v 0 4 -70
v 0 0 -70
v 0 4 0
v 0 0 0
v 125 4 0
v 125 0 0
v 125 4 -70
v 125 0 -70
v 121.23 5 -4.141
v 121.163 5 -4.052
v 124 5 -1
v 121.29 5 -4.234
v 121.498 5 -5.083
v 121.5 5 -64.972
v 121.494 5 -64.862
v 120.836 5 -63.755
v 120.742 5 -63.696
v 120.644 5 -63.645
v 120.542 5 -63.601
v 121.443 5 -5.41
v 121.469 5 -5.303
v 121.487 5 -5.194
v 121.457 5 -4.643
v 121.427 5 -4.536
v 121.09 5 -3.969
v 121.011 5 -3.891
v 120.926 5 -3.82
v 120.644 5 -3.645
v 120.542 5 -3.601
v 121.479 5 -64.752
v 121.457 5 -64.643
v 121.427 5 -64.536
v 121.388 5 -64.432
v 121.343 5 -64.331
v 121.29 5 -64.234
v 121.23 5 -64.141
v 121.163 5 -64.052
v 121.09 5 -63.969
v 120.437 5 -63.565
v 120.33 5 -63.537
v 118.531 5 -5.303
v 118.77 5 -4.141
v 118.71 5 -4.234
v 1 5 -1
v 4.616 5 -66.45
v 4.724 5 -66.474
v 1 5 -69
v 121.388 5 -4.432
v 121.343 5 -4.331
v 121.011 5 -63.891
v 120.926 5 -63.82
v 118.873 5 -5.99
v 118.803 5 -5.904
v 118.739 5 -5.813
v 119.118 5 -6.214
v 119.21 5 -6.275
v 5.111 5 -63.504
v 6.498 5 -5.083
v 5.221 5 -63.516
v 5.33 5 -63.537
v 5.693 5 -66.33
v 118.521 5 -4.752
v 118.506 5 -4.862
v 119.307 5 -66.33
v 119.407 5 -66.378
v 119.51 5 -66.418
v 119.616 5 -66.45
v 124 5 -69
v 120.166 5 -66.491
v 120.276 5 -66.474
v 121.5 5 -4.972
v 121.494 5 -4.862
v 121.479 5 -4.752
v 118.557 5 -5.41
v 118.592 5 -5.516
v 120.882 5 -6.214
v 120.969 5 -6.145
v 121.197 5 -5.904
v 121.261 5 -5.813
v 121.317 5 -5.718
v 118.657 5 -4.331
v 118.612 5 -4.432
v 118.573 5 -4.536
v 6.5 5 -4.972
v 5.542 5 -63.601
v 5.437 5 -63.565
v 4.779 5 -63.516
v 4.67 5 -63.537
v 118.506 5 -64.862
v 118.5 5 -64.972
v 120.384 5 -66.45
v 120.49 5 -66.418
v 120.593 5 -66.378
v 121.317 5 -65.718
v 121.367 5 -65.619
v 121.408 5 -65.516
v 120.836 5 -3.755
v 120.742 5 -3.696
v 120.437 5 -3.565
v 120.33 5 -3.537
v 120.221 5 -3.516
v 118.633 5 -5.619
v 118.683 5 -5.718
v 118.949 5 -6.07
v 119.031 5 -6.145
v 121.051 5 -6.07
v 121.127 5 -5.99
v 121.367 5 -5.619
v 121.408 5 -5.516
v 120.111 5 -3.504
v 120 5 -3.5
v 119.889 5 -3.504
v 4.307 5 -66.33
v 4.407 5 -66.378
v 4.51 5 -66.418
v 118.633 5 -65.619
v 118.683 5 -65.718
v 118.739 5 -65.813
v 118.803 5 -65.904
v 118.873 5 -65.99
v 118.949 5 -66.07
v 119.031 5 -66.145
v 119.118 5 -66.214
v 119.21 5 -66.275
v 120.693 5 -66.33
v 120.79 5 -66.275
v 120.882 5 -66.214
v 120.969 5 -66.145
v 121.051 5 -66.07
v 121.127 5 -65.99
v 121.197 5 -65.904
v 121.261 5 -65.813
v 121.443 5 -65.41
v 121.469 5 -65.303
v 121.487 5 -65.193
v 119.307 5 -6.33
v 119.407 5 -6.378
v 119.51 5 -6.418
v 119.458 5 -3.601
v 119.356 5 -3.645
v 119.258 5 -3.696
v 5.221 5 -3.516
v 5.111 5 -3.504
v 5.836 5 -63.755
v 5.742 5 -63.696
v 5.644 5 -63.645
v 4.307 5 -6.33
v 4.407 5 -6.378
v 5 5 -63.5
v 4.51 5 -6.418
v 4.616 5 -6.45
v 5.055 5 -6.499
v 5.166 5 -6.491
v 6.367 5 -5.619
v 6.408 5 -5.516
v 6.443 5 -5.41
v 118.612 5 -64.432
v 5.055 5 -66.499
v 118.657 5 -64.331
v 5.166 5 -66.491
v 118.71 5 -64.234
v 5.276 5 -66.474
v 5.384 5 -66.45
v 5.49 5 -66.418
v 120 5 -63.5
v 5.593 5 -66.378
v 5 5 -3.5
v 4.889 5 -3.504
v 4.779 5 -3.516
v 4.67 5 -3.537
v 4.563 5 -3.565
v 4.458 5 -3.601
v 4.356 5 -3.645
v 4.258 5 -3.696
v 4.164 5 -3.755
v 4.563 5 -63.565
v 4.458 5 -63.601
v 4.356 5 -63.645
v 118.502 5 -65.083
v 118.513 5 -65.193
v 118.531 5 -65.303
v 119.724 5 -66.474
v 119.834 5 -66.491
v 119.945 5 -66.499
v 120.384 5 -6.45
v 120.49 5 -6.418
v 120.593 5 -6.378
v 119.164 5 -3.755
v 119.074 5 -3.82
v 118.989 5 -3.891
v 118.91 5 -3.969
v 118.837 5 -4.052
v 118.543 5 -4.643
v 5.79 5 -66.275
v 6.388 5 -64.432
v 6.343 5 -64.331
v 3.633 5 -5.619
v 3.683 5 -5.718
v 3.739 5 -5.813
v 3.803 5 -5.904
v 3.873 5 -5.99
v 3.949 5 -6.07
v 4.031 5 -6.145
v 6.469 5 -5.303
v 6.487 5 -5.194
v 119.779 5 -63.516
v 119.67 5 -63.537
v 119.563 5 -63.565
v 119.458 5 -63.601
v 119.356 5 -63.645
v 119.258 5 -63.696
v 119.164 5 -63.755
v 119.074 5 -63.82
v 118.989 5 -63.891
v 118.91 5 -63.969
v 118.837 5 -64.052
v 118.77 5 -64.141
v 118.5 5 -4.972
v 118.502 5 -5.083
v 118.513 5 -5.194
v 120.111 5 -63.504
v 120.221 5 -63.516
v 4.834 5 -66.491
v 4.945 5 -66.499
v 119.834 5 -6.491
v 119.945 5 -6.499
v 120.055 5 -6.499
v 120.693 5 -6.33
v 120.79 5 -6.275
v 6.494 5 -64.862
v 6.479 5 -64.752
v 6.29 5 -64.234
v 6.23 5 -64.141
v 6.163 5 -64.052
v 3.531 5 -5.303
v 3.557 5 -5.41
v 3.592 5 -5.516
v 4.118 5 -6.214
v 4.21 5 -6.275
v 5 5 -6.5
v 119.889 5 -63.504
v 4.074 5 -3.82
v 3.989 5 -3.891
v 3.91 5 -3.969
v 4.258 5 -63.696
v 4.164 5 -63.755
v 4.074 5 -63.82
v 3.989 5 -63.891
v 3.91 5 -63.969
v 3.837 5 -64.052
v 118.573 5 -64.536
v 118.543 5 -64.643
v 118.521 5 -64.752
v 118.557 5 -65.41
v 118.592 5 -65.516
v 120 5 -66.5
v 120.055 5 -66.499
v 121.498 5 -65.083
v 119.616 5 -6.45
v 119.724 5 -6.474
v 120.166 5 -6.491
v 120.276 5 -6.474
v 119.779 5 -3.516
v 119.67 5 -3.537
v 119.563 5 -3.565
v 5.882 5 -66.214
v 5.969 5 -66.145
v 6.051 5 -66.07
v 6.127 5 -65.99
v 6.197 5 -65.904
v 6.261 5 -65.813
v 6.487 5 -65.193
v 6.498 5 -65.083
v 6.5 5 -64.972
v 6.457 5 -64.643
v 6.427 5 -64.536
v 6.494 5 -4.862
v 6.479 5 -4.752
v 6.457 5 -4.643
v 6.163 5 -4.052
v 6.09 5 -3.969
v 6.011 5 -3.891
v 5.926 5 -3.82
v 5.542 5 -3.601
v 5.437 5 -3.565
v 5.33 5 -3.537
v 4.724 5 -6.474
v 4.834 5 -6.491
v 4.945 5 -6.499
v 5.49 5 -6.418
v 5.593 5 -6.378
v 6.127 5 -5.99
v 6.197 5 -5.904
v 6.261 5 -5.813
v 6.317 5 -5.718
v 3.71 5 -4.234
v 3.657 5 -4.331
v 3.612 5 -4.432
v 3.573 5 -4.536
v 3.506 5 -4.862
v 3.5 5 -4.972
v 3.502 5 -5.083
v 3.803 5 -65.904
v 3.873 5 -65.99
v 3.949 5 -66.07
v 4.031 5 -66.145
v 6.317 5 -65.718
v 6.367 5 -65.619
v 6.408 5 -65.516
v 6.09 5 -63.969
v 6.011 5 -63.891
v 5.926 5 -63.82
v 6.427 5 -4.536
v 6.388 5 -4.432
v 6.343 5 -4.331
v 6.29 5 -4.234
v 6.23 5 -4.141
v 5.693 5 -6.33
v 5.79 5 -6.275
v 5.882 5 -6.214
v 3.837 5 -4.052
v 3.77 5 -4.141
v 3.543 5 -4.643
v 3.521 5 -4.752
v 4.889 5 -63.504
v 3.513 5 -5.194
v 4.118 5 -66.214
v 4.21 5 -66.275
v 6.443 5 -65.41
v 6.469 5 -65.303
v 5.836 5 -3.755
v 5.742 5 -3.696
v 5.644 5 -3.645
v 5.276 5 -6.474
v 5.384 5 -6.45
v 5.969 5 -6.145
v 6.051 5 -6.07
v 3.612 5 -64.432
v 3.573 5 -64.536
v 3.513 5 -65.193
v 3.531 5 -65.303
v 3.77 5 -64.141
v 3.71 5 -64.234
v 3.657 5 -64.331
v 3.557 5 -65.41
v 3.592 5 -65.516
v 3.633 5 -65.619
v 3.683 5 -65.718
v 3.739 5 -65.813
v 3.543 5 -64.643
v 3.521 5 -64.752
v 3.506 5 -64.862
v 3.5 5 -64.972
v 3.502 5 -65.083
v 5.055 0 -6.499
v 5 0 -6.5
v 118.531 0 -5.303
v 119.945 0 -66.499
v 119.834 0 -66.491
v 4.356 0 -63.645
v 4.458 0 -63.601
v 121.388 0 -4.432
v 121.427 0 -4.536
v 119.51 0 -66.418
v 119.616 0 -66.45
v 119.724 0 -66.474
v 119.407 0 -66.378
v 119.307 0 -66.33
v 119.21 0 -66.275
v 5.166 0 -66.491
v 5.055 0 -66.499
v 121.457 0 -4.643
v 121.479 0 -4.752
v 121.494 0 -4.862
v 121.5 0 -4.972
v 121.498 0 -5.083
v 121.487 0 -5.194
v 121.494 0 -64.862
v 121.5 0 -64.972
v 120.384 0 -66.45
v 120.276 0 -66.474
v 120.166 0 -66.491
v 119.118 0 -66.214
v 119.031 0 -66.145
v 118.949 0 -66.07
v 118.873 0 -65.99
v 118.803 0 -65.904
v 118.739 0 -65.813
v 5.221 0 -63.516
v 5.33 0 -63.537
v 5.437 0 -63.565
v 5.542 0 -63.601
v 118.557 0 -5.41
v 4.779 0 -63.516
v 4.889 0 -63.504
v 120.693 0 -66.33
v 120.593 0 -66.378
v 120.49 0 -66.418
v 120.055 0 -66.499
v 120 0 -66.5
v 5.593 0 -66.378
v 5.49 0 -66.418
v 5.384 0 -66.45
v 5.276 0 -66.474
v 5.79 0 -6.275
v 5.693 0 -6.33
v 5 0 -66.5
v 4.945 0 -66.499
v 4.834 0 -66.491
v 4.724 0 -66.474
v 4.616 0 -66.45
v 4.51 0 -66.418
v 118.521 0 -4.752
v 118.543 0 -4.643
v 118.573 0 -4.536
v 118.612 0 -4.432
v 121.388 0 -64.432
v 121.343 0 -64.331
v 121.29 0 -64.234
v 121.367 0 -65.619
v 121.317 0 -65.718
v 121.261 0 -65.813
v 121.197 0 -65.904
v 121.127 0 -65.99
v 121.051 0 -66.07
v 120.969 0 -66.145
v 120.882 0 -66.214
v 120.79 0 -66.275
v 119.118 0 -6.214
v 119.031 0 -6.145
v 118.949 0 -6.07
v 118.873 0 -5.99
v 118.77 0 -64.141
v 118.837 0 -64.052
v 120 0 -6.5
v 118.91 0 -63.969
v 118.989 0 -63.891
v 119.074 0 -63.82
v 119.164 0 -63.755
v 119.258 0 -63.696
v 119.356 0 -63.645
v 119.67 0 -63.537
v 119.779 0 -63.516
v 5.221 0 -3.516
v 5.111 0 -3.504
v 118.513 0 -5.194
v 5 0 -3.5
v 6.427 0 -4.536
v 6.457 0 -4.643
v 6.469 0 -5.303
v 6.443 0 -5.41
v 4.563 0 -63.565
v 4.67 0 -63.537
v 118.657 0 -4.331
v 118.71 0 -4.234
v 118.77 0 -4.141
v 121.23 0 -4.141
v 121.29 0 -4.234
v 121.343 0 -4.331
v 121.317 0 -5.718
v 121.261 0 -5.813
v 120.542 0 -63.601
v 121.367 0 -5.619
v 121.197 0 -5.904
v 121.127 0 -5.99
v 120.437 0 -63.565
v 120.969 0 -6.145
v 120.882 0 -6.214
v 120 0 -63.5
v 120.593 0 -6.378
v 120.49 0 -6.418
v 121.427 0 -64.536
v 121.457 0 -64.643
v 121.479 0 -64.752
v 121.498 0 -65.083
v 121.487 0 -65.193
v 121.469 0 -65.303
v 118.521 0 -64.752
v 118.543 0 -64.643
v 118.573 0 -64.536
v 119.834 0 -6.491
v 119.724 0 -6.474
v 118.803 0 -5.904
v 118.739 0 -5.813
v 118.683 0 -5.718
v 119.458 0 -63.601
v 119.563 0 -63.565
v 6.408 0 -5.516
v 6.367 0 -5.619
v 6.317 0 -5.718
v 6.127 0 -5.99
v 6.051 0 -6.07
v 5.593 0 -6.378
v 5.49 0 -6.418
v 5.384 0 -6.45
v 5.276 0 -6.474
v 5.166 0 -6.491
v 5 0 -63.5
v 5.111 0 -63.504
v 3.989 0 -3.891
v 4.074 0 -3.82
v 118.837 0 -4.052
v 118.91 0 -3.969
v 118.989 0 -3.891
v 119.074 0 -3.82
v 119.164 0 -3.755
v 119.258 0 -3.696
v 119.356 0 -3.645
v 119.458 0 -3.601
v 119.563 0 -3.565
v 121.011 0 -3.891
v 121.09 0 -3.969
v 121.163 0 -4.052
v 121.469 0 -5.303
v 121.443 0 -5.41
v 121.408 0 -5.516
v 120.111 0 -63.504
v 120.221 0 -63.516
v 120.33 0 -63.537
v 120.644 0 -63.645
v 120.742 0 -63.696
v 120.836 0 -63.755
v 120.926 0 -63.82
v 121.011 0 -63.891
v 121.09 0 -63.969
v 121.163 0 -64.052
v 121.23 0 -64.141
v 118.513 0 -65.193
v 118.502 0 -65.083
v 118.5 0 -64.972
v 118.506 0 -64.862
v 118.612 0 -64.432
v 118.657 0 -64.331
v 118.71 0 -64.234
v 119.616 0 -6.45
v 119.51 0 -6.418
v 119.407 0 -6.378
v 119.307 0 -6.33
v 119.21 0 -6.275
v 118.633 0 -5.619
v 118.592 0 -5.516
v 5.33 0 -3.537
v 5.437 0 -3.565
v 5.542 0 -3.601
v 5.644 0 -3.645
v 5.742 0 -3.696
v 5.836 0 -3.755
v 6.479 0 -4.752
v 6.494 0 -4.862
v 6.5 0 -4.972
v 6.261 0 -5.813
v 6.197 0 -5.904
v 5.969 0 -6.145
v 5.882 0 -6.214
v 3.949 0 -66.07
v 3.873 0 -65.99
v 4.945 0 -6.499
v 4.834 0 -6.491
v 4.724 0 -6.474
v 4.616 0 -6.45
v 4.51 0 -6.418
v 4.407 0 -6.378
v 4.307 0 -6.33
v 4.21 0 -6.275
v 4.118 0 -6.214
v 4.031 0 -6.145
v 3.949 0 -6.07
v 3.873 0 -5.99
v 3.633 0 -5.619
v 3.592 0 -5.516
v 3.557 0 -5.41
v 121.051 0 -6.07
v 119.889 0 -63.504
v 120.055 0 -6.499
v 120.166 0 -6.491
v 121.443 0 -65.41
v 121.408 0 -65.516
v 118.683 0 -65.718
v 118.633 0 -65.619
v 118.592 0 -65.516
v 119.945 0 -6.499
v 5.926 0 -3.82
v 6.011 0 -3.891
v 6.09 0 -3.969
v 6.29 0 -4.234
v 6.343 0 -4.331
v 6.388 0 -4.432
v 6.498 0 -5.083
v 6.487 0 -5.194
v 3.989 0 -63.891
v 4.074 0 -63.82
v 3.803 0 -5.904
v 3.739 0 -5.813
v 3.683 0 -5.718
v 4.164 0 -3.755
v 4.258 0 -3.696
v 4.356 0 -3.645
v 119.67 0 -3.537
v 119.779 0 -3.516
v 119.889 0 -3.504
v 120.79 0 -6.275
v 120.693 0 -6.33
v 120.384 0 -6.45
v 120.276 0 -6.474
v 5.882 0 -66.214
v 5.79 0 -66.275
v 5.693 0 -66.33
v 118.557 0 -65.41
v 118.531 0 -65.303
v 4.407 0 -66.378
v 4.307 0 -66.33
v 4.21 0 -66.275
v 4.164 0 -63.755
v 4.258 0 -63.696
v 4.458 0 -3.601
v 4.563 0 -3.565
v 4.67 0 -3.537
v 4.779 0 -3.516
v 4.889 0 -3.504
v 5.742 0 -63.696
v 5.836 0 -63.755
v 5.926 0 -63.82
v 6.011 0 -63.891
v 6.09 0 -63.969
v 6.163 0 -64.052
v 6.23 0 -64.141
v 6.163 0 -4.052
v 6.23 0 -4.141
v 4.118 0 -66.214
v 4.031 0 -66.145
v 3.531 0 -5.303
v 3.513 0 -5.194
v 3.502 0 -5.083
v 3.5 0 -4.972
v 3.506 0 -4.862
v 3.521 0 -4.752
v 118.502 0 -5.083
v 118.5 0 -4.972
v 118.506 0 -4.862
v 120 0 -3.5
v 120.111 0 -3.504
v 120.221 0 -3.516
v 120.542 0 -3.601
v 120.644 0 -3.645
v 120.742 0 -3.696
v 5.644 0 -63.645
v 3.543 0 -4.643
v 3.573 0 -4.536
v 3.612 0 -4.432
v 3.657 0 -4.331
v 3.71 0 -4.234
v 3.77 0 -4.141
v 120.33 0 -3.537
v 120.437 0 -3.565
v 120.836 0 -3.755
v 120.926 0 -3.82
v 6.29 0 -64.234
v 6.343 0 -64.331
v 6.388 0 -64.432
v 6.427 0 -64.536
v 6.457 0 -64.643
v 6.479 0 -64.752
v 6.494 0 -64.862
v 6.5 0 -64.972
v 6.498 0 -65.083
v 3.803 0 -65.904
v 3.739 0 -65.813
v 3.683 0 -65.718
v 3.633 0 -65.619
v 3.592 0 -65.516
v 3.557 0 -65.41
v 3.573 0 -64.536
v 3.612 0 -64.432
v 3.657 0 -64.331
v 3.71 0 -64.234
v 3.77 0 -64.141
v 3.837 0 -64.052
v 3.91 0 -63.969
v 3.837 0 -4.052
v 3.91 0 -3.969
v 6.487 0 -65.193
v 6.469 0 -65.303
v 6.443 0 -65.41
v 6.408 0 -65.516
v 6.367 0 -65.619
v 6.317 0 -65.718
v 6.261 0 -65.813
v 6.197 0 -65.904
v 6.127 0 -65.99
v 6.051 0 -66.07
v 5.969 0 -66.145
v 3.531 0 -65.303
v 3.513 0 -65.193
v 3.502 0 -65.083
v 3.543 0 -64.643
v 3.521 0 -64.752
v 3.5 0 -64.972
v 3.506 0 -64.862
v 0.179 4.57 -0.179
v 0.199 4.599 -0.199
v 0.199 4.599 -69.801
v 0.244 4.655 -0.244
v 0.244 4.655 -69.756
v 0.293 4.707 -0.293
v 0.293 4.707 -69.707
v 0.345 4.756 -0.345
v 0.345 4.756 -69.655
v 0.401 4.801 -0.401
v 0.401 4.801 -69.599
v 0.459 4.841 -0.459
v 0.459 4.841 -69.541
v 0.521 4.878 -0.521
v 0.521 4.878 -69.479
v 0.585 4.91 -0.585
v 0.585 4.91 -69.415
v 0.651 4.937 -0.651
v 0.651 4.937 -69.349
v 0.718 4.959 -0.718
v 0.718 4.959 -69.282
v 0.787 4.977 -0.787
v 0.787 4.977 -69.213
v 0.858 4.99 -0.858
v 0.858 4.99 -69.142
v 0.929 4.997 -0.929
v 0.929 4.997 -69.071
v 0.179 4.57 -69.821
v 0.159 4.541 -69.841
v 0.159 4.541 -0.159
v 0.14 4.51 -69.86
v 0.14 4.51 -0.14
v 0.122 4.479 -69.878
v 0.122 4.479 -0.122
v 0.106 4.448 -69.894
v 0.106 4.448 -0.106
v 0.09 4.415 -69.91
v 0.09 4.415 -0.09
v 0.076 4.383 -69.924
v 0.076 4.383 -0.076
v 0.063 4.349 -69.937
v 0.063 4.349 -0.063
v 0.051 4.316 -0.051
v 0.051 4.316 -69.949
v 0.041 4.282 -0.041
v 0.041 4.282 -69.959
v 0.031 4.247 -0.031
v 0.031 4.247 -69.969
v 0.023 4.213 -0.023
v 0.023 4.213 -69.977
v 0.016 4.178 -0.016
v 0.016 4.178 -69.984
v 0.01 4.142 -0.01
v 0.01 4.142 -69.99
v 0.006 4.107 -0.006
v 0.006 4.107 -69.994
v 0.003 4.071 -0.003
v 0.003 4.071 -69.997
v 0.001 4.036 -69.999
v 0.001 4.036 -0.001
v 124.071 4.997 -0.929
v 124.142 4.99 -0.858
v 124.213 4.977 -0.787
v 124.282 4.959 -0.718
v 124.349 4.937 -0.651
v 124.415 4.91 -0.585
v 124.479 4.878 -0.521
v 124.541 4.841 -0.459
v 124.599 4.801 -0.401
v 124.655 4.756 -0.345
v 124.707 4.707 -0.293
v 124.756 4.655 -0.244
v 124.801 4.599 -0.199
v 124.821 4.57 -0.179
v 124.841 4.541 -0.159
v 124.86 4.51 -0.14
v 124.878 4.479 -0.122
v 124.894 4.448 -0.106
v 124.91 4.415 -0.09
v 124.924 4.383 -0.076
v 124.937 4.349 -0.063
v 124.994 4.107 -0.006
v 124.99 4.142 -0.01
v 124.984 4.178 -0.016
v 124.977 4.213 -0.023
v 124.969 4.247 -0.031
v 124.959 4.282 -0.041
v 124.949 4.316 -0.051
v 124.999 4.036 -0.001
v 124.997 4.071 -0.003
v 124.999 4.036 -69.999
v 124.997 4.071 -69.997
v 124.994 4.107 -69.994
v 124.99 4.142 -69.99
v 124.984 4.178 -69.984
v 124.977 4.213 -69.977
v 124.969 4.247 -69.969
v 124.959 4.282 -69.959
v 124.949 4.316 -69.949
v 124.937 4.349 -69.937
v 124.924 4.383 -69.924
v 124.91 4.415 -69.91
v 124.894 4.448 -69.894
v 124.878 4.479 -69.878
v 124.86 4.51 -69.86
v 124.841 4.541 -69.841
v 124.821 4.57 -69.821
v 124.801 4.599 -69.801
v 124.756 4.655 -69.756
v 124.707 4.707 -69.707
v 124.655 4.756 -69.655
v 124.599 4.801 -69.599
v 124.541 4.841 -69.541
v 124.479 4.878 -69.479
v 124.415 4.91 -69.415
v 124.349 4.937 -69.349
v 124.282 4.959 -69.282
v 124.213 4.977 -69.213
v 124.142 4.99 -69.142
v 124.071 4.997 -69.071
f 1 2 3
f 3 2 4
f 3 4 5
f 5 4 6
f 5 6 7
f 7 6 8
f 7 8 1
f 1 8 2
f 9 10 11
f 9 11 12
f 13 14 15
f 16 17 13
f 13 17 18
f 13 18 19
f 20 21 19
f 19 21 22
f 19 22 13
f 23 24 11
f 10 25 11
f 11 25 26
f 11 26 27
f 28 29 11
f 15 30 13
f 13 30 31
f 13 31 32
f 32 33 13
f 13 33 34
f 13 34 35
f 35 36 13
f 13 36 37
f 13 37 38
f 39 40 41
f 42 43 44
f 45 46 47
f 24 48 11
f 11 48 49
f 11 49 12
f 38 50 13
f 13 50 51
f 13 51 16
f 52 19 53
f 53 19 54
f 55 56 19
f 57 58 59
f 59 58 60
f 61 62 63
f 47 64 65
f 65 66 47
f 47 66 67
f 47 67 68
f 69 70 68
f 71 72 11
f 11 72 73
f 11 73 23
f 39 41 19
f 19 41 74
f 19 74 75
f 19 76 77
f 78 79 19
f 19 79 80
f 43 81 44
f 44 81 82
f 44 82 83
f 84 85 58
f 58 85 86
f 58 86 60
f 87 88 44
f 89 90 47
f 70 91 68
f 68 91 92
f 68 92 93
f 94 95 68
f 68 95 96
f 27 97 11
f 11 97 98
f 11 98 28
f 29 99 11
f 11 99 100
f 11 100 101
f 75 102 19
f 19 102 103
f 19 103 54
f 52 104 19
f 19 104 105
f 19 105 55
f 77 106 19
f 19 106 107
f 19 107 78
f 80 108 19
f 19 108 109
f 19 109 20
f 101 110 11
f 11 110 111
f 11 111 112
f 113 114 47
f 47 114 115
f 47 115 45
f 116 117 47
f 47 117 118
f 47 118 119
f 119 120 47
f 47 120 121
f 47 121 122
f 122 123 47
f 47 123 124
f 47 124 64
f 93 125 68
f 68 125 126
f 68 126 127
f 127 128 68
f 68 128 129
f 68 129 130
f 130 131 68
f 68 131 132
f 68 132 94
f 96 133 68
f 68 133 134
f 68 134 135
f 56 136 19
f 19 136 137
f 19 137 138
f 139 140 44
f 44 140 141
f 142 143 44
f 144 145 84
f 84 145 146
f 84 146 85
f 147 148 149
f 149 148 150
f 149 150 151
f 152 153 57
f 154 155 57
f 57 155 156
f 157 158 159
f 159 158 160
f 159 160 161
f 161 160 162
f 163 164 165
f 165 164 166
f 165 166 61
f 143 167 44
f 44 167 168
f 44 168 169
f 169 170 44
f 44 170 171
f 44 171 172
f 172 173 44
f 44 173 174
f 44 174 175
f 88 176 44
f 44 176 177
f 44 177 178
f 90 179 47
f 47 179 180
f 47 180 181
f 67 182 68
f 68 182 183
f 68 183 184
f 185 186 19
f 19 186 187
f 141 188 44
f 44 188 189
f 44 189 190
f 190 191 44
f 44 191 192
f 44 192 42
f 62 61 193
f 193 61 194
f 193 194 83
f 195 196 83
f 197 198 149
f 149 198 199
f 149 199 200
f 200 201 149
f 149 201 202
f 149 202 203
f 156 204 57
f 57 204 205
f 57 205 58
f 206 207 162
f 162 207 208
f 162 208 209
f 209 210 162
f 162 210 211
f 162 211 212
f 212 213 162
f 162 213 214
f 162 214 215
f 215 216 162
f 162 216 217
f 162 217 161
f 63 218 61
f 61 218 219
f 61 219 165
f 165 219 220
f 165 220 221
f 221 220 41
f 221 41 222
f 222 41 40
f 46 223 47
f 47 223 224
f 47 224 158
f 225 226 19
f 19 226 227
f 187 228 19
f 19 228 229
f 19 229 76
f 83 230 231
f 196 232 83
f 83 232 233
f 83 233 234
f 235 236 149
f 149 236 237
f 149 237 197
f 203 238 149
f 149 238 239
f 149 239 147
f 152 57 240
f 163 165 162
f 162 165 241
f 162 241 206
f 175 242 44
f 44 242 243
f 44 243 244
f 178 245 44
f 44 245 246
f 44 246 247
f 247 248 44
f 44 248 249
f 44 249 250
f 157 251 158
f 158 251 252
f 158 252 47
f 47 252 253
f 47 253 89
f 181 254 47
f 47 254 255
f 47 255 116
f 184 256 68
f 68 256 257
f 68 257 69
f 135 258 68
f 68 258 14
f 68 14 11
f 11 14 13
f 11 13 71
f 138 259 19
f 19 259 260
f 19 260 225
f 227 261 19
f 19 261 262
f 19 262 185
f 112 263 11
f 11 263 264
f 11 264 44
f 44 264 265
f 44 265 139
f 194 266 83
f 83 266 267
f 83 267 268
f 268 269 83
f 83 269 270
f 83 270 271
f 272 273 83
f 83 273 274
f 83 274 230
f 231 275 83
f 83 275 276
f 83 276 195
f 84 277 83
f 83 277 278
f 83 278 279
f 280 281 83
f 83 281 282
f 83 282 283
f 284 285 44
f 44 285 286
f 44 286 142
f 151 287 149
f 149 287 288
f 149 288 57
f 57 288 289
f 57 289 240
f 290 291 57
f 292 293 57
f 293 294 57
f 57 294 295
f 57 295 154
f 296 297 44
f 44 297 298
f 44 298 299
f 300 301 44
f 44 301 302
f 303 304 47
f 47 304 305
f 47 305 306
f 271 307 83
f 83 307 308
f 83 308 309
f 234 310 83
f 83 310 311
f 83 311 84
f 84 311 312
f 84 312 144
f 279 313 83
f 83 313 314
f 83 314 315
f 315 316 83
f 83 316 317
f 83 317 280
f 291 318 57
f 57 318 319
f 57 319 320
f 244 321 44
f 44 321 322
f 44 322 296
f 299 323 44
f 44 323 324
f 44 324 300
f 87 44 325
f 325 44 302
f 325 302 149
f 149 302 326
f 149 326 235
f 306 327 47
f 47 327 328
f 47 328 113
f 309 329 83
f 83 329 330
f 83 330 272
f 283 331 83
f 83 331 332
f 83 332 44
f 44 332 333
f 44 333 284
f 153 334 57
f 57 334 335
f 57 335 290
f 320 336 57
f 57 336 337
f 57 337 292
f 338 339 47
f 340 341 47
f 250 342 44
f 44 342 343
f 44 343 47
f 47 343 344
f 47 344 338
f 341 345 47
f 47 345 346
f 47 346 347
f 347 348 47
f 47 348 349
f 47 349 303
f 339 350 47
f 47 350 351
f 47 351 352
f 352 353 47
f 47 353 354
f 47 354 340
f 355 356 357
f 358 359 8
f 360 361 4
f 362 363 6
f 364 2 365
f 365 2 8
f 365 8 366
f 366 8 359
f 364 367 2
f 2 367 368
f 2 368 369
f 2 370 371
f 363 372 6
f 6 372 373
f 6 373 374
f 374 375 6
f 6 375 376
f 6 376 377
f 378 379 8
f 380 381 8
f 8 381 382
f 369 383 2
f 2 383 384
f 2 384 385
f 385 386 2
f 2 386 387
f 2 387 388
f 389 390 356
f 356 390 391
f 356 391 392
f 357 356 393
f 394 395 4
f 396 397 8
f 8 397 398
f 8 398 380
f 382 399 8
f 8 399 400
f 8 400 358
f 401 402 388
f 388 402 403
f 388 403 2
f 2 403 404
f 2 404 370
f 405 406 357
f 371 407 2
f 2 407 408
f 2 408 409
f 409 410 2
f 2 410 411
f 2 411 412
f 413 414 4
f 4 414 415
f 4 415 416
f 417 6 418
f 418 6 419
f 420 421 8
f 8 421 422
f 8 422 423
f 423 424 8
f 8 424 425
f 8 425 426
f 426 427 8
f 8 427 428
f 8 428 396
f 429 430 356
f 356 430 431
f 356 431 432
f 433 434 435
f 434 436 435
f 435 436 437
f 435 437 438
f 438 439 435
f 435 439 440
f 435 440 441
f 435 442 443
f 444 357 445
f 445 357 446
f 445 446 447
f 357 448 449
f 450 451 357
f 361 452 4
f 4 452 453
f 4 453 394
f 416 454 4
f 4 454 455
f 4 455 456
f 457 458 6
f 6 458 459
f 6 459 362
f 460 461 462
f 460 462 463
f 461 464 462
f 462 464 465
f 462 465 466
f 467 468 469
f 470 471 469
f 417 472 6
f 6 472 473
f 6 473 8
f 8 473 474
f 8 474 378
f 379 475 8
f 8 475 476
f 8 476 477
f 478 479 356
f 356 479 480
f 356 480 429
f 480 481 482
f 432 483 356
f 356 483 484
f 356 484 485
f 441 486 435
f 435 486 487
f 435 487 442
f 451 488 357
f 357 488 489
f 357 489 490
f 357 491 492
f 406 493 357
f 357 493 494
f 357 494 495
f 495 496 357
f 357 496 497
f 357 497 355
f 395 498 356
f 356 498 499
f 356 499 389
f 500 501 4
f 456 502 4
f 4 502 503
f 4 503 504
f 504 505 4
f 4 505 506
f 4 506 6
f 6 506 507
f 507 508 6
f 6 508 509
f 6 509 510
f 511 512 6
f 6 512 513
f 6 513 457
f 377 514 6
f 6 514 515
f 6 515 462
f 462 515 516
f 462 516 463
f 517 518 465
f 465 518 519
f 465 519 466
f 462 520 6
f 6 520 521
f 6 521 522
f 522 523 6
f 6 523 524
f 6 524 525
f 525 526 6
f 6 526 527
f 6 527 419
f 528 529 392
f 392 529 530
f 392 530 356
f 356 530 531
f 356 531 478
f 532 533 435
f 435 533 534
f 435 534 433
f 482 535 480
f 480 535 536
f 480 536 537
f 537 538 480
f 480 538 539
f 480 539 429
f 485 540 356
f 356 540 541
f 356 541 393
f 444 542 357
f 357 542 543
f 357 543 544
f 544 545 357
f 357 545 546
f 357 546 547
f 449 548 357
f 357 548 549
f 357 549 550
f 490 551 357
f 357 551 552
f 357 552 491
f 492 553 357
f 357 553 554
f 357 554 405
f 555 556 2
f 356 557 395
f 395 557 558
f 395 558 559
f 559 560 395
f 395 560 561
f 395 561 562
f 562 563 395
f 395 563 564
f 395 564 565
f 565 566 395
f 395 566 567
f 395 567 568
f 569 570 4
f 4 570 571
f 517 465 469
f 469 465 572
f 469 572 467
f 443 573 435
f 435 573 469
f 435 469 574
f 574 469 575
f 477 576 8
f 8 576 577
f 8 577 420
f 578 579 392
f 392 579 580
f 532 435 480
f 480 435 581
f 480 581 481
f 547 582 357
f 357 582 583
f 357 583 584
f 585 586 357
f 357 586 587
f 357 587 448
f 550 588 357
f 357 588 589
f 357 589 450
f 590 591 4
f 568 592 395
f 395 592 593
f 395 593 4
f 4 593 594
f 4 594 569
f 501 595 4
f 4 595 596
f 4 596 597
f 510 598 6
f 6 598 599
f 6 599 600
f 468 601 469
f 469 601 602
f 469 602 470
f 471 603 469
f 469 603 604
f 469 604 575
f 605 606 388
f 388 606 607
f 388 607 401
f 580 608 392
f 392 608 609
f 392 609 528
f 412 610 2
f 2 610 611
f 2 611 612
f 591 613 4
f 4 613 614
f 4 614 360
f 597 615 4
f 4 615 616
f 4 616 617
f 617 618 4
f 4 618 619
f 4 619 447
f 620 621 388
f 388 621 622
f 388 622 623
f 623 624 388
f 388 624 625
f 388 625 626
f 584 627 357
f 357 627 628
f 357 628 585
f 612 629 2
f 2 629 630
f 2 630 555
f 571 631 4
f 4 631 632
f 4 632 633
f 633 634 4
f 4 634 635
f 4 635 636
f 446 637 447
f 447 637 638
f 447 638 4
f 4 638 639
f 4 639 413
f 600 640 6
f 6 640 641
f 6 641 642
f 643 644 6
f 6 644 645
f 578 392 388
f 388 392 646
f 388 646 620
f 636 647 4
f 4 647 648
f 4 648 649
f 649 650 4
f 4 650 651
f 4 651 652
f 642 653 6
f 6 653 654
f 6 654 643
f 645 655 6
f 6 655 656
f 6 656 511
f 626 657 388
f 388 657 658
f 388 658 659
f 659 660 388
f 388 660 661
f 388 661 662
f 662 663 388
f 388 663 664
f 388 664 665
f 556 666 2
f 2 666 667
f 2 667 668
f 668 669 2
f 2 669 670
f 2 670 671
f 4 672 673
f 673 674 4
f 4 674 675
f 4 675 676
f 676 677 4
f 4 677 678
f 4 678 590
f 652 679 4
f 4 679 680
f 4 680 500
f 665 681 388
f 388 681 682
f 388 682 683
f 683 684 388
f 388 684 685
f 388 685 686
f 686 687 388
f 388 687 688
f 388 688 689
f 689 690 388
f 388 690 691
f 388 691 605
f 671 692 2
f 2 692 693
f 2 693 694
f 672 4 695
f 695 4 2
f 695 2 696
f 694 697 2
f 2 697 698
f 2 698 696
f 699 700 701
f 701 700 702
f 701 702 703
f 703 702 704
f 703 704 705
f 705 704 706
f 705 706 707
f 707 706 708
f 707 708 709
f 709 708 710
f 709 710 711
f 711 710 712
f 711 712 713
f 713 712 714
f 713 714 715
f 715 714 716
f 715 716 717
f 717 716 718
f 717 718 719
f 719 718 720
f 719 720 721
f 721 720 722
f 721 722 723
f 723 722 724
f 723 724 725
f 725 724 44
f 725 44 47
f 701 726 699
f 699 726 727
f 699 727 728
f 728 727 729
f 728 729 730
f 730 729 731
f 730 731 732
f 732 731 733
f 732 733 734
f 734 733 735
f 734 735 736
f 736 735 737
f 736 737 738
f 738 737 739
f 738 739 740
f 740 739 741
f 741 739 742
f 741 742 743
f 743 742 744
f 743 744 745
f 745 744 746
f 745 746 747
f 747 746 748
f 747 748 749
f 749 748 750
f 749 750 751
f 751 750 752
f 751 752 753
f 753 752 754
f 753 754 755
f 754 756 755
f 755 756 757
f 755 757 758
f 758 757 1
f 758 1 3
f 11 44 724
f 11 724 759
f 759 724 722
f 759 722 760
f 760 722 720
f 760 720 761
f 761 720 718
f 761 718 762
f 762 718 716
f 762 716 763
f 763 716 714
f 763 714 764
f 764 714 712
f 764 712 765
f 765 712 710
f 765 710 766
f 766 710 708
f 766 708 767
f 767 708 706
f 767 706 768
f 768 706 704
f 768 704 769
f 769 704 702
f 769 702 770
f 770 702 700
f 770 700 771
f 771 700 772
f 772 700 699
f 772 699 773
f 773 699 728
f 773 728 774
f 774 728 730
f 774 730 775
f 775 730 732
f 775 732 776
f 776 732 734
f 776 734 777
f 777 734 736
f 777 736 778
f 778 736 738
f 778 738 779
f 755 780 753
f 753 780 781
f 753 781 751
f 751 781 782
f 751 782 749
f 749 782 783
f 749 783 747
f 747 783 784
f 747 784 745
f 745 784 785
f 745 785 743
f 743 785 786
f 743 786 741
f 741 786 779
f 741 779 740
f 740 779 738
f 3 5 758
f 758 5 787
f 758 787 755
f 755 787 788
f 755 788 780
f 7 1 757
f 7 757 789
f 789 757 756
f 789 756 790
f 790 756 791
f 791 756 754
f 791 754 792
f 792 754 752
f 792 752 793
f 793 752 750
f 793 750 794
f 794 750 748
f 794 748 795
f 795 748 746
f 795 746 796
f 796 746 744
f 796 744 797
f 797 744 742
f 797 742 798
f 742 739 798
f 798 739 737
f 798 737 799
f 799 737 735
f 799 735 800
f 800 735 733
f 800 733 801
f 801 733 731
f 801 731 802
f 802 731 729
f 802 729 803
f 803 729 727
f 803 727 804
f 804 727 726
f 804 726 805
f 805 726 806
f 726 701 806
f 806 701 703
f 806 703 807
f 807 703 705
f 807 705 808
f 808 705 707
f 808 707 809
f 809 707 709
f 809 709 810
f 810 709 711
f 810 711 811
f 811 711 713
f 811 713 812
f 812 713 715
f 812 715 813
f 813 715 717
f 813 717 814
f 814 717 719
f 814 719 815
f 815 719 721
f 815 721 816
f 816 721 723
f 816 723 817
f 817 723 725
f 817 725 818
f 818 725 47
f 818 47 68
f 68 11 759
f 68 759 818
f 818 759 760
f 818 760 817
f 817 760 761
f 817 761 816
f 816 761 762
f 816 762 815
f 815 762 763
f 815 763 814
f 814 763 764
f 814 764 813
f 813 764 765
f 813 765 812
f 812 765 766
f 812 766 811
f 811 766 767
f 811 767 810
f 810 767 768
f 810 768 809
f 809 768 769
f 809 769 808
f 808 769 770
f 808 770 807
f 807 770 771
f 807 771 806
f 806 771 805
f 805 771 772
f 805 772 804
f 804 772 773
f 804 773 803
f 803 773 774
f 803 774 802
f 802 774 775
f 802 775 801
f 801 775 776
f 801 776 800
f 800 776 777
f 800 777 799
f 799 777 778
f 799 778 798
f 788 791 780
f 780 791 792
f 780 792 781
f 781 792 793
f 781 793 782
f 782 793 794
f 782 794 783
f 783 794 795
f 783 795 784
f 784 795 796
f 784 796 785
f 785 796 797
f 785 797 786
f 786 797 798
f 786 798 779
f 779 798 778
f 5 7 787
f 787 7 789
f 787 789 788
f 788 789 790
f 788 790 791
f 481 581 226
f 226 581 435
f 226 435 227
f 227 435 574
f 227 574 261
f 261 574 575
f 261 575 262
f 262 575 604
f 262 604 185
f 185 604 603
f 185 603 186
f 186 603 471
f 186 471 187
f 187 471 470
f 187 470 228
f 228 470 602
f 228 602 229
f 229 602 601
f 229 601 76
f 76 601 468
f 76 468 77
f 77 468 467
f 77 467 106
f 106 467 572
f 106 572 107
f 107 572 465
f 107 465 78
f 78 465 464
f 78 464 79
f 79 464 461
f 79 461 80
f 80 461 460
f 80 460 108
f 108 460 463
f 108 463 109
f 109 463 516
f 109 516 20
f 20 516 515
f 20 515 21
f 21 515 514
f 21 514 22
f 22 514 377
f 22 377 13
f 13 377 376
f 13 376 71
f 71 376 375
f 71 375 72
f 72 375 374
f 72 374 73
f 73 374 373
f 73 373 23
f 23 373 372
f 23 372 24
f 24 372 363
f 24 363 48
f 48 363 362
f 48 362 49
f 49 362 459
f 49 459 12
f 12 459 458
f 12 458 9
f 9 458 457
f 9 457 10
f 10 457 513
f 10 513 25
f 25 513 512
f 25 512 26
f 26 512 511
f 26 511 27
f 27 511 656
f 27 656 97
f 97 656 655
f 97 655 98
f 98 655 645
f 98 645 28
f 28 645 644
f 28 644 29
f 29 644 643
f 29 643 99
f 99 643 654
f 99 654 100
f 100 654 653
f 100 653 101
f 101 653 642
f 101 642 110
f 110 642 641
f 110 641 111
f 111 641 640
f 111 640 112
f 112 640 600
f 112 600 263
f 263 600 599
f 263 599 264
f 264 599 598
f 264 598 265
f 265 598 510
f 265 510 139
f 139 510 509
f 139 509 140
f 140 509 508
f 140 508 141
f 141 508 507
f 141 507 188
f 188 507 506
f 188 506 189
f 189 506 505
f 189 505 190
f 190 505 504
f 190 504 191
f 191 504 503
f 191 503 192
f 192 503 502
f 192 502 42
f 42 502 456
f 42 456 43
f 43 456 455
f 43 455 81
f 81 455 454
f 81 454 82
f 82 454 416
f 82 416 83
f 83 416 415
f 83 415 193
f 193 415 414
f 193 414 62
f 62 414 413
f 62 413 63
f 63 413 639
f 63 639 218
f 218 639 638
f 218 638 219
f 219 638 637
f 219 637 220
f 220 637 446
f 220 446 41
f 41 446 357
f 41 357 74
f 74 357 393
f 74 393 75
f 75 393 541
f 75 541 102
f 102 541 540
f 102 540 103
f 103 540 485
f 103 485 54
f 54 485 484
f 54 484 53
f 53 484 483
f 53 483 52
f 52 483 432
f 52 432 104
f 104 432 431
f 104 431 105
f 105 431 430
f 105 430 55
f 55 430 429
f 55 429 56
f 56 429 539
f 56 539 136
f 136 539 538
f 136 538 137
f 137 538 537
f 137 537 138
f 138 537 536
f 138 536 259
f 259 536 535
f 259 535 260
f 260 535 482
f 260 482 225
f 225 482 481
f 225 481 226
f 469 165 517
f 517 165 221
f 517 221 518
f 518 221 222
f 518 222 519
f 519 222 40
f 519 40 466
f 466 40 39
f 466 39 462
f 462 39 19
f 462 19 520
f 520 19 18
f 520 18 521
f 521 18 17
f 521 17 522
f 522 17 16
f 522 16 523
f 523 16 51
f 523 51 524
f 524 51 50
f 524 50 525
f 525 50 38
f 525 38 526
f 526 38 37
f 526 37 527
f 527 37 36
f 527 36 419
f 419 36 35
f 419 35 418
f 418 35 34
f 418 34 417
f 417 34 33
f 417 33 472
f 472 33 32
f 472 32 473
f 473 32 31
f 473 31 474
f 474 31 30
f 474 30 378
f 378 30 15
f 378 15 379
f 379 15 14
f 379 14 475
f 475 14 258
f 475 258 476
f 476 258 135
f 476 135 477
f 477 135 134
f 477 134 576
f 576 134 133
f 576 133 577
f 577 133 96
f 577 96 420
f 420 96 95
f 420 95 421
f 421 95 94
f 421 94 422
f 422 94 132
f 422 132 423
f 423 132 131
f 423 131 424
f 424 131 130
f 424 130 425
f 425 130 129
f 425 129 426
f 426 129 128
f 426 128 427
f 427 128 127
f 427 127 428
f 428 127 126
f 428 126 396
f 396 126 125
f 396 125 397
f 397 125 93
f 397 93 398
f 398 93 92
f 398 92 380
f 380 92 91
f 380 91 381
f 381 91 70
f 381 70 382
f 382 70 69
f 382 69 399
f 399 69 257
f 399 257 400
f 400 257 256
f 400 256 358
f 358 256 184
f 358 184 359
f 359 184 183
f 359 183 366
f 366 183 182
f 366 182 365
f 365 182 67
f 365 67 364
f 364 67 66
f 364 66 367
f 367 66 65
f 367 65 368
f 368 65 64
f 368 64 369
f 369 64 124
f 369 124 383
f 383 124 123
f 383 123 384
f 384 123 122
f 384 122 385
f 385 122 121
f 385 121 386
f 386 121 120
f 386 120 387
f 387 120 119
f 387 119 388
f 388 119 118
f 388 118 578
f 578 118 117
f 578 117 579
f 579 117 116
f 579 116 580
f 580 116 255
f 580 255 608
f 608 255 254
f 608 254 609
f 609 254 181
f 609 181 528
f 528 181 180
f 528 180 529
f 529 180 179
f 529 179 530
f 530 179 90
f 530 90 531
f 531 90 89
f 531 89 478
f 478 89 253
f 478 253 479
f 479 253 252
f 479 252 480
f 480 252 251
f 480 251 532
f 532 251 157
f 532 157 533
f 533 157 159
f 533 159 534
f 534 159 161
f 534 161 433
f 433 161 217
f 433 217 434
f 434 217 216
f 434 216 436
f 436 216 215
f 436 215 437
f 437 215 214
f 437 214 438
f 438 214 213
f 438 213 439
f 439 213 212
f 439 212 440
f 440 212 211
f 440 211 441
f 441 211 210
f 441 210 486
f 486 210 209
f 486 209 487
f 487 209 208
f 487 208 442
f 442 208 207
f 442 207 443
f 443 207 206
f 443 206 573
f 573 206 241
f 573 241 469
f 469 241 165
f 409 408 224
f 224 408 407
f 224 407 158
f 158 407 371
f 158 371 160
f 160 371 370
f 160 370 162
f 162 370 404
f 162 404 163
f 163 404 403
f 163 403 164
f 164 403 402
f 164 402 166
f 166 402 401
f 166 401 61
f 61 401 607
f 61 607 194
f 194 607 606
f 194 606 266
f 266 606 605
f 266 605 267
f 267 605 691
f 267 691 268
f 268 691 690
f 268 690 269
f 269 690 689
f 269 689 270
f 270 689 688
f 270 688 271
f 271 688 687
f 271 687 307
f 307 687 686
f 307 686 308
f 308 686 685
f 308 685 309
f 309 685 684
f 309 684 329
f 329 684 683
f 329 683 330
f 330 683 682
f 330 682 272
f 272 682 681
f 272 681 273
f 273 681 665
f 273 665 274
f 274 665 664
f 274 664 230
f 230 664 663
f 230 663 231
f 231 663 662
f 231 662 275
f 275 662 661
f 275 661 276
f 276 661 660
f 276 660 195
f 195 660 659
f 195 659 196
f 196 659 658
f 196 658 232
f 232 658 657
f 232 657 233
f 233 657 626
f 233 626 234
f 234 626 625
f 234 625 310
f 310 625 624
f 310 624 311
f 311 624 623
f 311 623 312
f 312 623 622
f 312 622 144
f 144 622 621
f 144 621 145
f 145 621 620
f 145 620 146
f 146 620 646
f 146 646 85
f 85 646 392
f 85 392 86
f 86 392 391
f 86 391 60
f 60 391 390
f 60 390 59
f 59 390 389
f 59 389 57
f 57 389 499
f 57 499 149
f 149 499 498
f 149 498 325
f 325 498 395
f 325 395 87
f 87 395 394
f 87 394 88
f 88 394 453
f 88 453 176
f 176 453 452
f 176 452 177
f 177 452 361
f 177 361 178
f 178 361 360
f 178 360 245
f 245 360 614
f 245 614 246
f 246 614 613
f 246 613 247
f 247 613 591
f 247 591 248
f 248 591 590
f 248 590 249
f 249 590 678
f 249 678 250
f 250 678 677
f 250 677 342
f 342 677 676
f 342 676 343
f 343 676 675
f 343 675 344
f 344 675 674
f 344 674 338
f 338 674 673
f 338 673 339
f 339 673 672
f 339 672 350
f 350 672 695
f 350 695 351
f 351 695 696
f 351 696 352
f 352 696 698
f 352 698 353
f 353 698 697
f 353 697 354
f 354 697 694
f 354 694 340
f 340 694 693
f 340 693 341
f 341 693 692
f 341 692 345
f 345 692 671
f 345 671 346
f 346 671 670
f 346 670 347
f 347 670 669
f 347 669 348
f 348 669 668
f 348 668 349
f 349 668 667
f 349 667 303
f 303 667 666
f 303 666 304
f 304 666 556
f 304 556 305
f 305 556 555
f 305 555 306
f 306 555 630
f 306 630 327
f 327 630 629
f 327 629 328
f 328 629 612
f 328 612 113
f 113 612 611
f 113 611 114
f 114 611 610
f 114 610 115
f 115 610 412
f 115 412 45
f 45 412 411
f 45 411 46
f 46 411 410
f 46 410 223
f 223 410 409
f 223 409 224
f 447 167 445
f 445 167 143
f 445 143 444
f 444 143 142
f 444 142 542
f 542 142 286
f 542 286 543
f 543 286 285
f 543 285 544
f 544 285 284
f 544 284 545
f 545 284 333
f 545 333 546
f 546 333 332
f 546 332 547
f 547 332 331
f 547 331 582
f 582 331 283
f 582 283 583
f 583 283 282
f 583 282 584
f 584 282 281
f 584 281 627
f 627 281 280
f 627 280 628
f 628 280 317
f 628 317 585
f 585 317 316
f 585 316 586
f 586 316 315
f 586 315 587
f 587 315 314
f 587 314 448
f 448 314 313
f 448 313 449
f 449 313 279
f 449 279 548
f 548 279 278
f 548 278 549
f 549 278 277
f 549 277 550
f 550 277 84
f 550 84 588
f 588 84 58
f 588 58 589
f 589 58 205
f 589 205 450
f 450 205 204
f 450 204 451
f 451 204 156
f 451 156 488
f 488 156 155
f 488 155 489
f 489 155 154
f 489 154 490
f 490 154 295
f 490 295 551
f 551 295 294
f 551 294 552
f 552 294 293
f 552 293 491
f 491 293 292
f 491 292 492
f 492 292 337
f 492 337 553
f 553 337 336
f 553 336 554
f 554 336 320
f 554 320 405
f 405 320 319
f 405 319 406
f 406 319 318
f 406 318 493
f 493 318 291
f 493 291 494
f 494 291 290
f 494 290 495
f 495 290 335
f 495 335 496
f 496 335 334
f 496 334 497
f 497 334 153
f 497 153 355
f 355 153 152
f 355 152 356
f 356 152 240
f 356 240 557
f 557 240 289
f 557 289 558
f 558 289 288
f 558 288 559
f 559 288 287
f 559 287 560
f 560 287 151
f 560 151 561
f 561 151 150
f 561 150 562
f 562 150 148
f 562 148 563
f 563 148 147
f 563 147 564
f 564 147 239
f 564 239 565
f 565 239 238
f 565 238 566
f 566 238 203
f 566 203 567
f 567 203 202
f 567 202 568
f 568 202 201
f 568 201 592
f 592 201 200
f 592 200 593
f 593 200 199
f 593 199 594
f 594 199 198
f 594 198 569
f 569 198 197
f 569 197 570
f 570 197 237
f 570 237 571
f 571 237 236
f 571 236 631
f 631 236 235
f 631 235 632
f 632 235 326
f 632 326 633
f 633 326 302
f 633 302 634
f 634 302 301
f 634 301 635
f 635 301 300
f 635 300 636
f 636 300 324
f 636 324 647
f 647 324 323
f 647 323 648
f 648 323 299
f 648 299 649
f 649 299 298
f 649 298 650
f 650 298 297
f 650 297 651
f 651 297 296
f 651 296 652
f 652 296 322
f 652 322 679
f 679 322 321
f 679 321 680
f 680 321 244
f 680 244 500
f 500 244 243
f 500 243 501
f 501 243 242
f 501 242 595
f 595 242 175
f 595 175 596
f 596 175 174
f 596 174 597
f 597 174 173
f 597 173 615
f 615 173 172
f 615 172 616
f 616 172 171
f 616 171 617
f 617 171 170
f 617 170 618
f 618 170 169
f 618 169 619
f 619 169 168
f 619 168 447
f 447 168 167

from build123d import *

# Parameters (mm, degrees)
SKETCH1_W           = 125
SKETCH1_H           = 70
BOSS_EXTRUDE1_DEPTH = 5
FILLET1_R           = 1
CUT_EXTRUDE1_REACH  = 145.353
SKETCH2_R           = 1.5


with BuildPart() as part:
    # Sketch1 → Boss-Extrude1 (new body)
    with BuildSketch(Plane(origin=(0, 0, 0), x_dir=(1, 0, 0), z_dir=(0, 1, 0))):
        with Locations((62.5, 35)):
            Rectangle(SKETCH1_W, SKETCH1_H)
    extrude(amount=BOSS_EXTRUDE1_DEPTH)

    # Fillet1
    fillet1_edges = [part.edges().sort_by_distance(p)[0] for p in [
        (125, 5, -35),
        (62.5, 5, -70),
        (0, 5, -35),
        (62.5, 5, 0),
    ]]
    fillet(fillet1_edges, radius=FILLET1_R)

    # Sketch2 → Cut-Extrude1 (cut, up to next)
    with BuildSketch(Plane(origin=(0, 5, 0), x_dir=(1, 0, 0), z_dir=(0, 1, 0)), mode=Mode.PRIVATE) as cut_extrude1_sk1:
        with Locations(Location((120, 5, 0), (0, 0, 270))):
            Circle(SKETCH2_R)
    cut_extrude1_tool1 = extrude(cut_extrude1_sk1.sketch, amount=-CUT_EXTRUDE1_REACH, mode=Mode.PRIVATE) & part.part
    # Sketch2 → Cut-Extrude1 (cut, up to next)
    with BuildSketch(Plane(origin=(0, 5, 0), x_dir=(1, 0, 0), z_dir=(0, 1, 0)), mode=Mode.PRIVATE) as cut_extrude1_sk2:
        with Locations(Location((120, 65, 0), (0, 0, 90))):
            Circle(SKETCH2_R)
    cut_extrude1_tool2 = extrude(cut_extrude1_sk2.sketch, amount=-CUT_EXTRUDE1_REACH, mode=Mode.PRIVATE) & part.part
    # Sketch2 → Cut-Extrude1 (cut, up to next)
    with BuildSketch(Plane(origin=(0, 5, 0), x_dir=(1, 0, 0), z_dir=(0, 1, 0)), mode=Mode.PRIVATE) as cut_extrude1_sk3:
        with Locations(Location((5, 65, 0), (0, 0, 270))):
            Circle(SKETCH2_R)
    cut_extrude1_tool3 = extrude(cut_extrude1_sk3.sketch, amount=-CUT_EXTRUDE1_REACH, mode=Mode.PRIVATE) & part.part
    # Sketch2 → Cut-Extrude1 (cut, up to next)
    with BuildSketch(Plane(origin=(0, 5, 0), x_dir=(1, 0, 0), z_dir=(0, 1, 0)), mode=Mode.PRIVATE) as cut_extrude1_sk4:
        with Locations(Location((5, 5, 0), (0, 0, 90))):
            Circle(SKETCH2_R)
    cut_extrude1_tool4 = extrude(cut_extrude1_sk4.sketch, amount=-CUT_EXTRUDE1_REACH, mode=Mode.PRIVATE) & part.part
    add(cut_extrude1_tool1.solids().sort_by_distance((120, 5, -5))[0], mode=Mode.SUBTRACT)
    add(cut_extrude1_tool2.solids().sort_by_distance((120, 5, -65))[0], mode=Mode.SUBTRACT)
    add(cut_extrude1_tool3.solids().sort_by_distance((5, 5, -65))[0], mode=Mode.SUBTRACT)
    add(cut_extrude1_tool4.solids().sort_by_distance((5, 5, -5))[0], mode=Mode.SUBTRACT)


solid = part.part
